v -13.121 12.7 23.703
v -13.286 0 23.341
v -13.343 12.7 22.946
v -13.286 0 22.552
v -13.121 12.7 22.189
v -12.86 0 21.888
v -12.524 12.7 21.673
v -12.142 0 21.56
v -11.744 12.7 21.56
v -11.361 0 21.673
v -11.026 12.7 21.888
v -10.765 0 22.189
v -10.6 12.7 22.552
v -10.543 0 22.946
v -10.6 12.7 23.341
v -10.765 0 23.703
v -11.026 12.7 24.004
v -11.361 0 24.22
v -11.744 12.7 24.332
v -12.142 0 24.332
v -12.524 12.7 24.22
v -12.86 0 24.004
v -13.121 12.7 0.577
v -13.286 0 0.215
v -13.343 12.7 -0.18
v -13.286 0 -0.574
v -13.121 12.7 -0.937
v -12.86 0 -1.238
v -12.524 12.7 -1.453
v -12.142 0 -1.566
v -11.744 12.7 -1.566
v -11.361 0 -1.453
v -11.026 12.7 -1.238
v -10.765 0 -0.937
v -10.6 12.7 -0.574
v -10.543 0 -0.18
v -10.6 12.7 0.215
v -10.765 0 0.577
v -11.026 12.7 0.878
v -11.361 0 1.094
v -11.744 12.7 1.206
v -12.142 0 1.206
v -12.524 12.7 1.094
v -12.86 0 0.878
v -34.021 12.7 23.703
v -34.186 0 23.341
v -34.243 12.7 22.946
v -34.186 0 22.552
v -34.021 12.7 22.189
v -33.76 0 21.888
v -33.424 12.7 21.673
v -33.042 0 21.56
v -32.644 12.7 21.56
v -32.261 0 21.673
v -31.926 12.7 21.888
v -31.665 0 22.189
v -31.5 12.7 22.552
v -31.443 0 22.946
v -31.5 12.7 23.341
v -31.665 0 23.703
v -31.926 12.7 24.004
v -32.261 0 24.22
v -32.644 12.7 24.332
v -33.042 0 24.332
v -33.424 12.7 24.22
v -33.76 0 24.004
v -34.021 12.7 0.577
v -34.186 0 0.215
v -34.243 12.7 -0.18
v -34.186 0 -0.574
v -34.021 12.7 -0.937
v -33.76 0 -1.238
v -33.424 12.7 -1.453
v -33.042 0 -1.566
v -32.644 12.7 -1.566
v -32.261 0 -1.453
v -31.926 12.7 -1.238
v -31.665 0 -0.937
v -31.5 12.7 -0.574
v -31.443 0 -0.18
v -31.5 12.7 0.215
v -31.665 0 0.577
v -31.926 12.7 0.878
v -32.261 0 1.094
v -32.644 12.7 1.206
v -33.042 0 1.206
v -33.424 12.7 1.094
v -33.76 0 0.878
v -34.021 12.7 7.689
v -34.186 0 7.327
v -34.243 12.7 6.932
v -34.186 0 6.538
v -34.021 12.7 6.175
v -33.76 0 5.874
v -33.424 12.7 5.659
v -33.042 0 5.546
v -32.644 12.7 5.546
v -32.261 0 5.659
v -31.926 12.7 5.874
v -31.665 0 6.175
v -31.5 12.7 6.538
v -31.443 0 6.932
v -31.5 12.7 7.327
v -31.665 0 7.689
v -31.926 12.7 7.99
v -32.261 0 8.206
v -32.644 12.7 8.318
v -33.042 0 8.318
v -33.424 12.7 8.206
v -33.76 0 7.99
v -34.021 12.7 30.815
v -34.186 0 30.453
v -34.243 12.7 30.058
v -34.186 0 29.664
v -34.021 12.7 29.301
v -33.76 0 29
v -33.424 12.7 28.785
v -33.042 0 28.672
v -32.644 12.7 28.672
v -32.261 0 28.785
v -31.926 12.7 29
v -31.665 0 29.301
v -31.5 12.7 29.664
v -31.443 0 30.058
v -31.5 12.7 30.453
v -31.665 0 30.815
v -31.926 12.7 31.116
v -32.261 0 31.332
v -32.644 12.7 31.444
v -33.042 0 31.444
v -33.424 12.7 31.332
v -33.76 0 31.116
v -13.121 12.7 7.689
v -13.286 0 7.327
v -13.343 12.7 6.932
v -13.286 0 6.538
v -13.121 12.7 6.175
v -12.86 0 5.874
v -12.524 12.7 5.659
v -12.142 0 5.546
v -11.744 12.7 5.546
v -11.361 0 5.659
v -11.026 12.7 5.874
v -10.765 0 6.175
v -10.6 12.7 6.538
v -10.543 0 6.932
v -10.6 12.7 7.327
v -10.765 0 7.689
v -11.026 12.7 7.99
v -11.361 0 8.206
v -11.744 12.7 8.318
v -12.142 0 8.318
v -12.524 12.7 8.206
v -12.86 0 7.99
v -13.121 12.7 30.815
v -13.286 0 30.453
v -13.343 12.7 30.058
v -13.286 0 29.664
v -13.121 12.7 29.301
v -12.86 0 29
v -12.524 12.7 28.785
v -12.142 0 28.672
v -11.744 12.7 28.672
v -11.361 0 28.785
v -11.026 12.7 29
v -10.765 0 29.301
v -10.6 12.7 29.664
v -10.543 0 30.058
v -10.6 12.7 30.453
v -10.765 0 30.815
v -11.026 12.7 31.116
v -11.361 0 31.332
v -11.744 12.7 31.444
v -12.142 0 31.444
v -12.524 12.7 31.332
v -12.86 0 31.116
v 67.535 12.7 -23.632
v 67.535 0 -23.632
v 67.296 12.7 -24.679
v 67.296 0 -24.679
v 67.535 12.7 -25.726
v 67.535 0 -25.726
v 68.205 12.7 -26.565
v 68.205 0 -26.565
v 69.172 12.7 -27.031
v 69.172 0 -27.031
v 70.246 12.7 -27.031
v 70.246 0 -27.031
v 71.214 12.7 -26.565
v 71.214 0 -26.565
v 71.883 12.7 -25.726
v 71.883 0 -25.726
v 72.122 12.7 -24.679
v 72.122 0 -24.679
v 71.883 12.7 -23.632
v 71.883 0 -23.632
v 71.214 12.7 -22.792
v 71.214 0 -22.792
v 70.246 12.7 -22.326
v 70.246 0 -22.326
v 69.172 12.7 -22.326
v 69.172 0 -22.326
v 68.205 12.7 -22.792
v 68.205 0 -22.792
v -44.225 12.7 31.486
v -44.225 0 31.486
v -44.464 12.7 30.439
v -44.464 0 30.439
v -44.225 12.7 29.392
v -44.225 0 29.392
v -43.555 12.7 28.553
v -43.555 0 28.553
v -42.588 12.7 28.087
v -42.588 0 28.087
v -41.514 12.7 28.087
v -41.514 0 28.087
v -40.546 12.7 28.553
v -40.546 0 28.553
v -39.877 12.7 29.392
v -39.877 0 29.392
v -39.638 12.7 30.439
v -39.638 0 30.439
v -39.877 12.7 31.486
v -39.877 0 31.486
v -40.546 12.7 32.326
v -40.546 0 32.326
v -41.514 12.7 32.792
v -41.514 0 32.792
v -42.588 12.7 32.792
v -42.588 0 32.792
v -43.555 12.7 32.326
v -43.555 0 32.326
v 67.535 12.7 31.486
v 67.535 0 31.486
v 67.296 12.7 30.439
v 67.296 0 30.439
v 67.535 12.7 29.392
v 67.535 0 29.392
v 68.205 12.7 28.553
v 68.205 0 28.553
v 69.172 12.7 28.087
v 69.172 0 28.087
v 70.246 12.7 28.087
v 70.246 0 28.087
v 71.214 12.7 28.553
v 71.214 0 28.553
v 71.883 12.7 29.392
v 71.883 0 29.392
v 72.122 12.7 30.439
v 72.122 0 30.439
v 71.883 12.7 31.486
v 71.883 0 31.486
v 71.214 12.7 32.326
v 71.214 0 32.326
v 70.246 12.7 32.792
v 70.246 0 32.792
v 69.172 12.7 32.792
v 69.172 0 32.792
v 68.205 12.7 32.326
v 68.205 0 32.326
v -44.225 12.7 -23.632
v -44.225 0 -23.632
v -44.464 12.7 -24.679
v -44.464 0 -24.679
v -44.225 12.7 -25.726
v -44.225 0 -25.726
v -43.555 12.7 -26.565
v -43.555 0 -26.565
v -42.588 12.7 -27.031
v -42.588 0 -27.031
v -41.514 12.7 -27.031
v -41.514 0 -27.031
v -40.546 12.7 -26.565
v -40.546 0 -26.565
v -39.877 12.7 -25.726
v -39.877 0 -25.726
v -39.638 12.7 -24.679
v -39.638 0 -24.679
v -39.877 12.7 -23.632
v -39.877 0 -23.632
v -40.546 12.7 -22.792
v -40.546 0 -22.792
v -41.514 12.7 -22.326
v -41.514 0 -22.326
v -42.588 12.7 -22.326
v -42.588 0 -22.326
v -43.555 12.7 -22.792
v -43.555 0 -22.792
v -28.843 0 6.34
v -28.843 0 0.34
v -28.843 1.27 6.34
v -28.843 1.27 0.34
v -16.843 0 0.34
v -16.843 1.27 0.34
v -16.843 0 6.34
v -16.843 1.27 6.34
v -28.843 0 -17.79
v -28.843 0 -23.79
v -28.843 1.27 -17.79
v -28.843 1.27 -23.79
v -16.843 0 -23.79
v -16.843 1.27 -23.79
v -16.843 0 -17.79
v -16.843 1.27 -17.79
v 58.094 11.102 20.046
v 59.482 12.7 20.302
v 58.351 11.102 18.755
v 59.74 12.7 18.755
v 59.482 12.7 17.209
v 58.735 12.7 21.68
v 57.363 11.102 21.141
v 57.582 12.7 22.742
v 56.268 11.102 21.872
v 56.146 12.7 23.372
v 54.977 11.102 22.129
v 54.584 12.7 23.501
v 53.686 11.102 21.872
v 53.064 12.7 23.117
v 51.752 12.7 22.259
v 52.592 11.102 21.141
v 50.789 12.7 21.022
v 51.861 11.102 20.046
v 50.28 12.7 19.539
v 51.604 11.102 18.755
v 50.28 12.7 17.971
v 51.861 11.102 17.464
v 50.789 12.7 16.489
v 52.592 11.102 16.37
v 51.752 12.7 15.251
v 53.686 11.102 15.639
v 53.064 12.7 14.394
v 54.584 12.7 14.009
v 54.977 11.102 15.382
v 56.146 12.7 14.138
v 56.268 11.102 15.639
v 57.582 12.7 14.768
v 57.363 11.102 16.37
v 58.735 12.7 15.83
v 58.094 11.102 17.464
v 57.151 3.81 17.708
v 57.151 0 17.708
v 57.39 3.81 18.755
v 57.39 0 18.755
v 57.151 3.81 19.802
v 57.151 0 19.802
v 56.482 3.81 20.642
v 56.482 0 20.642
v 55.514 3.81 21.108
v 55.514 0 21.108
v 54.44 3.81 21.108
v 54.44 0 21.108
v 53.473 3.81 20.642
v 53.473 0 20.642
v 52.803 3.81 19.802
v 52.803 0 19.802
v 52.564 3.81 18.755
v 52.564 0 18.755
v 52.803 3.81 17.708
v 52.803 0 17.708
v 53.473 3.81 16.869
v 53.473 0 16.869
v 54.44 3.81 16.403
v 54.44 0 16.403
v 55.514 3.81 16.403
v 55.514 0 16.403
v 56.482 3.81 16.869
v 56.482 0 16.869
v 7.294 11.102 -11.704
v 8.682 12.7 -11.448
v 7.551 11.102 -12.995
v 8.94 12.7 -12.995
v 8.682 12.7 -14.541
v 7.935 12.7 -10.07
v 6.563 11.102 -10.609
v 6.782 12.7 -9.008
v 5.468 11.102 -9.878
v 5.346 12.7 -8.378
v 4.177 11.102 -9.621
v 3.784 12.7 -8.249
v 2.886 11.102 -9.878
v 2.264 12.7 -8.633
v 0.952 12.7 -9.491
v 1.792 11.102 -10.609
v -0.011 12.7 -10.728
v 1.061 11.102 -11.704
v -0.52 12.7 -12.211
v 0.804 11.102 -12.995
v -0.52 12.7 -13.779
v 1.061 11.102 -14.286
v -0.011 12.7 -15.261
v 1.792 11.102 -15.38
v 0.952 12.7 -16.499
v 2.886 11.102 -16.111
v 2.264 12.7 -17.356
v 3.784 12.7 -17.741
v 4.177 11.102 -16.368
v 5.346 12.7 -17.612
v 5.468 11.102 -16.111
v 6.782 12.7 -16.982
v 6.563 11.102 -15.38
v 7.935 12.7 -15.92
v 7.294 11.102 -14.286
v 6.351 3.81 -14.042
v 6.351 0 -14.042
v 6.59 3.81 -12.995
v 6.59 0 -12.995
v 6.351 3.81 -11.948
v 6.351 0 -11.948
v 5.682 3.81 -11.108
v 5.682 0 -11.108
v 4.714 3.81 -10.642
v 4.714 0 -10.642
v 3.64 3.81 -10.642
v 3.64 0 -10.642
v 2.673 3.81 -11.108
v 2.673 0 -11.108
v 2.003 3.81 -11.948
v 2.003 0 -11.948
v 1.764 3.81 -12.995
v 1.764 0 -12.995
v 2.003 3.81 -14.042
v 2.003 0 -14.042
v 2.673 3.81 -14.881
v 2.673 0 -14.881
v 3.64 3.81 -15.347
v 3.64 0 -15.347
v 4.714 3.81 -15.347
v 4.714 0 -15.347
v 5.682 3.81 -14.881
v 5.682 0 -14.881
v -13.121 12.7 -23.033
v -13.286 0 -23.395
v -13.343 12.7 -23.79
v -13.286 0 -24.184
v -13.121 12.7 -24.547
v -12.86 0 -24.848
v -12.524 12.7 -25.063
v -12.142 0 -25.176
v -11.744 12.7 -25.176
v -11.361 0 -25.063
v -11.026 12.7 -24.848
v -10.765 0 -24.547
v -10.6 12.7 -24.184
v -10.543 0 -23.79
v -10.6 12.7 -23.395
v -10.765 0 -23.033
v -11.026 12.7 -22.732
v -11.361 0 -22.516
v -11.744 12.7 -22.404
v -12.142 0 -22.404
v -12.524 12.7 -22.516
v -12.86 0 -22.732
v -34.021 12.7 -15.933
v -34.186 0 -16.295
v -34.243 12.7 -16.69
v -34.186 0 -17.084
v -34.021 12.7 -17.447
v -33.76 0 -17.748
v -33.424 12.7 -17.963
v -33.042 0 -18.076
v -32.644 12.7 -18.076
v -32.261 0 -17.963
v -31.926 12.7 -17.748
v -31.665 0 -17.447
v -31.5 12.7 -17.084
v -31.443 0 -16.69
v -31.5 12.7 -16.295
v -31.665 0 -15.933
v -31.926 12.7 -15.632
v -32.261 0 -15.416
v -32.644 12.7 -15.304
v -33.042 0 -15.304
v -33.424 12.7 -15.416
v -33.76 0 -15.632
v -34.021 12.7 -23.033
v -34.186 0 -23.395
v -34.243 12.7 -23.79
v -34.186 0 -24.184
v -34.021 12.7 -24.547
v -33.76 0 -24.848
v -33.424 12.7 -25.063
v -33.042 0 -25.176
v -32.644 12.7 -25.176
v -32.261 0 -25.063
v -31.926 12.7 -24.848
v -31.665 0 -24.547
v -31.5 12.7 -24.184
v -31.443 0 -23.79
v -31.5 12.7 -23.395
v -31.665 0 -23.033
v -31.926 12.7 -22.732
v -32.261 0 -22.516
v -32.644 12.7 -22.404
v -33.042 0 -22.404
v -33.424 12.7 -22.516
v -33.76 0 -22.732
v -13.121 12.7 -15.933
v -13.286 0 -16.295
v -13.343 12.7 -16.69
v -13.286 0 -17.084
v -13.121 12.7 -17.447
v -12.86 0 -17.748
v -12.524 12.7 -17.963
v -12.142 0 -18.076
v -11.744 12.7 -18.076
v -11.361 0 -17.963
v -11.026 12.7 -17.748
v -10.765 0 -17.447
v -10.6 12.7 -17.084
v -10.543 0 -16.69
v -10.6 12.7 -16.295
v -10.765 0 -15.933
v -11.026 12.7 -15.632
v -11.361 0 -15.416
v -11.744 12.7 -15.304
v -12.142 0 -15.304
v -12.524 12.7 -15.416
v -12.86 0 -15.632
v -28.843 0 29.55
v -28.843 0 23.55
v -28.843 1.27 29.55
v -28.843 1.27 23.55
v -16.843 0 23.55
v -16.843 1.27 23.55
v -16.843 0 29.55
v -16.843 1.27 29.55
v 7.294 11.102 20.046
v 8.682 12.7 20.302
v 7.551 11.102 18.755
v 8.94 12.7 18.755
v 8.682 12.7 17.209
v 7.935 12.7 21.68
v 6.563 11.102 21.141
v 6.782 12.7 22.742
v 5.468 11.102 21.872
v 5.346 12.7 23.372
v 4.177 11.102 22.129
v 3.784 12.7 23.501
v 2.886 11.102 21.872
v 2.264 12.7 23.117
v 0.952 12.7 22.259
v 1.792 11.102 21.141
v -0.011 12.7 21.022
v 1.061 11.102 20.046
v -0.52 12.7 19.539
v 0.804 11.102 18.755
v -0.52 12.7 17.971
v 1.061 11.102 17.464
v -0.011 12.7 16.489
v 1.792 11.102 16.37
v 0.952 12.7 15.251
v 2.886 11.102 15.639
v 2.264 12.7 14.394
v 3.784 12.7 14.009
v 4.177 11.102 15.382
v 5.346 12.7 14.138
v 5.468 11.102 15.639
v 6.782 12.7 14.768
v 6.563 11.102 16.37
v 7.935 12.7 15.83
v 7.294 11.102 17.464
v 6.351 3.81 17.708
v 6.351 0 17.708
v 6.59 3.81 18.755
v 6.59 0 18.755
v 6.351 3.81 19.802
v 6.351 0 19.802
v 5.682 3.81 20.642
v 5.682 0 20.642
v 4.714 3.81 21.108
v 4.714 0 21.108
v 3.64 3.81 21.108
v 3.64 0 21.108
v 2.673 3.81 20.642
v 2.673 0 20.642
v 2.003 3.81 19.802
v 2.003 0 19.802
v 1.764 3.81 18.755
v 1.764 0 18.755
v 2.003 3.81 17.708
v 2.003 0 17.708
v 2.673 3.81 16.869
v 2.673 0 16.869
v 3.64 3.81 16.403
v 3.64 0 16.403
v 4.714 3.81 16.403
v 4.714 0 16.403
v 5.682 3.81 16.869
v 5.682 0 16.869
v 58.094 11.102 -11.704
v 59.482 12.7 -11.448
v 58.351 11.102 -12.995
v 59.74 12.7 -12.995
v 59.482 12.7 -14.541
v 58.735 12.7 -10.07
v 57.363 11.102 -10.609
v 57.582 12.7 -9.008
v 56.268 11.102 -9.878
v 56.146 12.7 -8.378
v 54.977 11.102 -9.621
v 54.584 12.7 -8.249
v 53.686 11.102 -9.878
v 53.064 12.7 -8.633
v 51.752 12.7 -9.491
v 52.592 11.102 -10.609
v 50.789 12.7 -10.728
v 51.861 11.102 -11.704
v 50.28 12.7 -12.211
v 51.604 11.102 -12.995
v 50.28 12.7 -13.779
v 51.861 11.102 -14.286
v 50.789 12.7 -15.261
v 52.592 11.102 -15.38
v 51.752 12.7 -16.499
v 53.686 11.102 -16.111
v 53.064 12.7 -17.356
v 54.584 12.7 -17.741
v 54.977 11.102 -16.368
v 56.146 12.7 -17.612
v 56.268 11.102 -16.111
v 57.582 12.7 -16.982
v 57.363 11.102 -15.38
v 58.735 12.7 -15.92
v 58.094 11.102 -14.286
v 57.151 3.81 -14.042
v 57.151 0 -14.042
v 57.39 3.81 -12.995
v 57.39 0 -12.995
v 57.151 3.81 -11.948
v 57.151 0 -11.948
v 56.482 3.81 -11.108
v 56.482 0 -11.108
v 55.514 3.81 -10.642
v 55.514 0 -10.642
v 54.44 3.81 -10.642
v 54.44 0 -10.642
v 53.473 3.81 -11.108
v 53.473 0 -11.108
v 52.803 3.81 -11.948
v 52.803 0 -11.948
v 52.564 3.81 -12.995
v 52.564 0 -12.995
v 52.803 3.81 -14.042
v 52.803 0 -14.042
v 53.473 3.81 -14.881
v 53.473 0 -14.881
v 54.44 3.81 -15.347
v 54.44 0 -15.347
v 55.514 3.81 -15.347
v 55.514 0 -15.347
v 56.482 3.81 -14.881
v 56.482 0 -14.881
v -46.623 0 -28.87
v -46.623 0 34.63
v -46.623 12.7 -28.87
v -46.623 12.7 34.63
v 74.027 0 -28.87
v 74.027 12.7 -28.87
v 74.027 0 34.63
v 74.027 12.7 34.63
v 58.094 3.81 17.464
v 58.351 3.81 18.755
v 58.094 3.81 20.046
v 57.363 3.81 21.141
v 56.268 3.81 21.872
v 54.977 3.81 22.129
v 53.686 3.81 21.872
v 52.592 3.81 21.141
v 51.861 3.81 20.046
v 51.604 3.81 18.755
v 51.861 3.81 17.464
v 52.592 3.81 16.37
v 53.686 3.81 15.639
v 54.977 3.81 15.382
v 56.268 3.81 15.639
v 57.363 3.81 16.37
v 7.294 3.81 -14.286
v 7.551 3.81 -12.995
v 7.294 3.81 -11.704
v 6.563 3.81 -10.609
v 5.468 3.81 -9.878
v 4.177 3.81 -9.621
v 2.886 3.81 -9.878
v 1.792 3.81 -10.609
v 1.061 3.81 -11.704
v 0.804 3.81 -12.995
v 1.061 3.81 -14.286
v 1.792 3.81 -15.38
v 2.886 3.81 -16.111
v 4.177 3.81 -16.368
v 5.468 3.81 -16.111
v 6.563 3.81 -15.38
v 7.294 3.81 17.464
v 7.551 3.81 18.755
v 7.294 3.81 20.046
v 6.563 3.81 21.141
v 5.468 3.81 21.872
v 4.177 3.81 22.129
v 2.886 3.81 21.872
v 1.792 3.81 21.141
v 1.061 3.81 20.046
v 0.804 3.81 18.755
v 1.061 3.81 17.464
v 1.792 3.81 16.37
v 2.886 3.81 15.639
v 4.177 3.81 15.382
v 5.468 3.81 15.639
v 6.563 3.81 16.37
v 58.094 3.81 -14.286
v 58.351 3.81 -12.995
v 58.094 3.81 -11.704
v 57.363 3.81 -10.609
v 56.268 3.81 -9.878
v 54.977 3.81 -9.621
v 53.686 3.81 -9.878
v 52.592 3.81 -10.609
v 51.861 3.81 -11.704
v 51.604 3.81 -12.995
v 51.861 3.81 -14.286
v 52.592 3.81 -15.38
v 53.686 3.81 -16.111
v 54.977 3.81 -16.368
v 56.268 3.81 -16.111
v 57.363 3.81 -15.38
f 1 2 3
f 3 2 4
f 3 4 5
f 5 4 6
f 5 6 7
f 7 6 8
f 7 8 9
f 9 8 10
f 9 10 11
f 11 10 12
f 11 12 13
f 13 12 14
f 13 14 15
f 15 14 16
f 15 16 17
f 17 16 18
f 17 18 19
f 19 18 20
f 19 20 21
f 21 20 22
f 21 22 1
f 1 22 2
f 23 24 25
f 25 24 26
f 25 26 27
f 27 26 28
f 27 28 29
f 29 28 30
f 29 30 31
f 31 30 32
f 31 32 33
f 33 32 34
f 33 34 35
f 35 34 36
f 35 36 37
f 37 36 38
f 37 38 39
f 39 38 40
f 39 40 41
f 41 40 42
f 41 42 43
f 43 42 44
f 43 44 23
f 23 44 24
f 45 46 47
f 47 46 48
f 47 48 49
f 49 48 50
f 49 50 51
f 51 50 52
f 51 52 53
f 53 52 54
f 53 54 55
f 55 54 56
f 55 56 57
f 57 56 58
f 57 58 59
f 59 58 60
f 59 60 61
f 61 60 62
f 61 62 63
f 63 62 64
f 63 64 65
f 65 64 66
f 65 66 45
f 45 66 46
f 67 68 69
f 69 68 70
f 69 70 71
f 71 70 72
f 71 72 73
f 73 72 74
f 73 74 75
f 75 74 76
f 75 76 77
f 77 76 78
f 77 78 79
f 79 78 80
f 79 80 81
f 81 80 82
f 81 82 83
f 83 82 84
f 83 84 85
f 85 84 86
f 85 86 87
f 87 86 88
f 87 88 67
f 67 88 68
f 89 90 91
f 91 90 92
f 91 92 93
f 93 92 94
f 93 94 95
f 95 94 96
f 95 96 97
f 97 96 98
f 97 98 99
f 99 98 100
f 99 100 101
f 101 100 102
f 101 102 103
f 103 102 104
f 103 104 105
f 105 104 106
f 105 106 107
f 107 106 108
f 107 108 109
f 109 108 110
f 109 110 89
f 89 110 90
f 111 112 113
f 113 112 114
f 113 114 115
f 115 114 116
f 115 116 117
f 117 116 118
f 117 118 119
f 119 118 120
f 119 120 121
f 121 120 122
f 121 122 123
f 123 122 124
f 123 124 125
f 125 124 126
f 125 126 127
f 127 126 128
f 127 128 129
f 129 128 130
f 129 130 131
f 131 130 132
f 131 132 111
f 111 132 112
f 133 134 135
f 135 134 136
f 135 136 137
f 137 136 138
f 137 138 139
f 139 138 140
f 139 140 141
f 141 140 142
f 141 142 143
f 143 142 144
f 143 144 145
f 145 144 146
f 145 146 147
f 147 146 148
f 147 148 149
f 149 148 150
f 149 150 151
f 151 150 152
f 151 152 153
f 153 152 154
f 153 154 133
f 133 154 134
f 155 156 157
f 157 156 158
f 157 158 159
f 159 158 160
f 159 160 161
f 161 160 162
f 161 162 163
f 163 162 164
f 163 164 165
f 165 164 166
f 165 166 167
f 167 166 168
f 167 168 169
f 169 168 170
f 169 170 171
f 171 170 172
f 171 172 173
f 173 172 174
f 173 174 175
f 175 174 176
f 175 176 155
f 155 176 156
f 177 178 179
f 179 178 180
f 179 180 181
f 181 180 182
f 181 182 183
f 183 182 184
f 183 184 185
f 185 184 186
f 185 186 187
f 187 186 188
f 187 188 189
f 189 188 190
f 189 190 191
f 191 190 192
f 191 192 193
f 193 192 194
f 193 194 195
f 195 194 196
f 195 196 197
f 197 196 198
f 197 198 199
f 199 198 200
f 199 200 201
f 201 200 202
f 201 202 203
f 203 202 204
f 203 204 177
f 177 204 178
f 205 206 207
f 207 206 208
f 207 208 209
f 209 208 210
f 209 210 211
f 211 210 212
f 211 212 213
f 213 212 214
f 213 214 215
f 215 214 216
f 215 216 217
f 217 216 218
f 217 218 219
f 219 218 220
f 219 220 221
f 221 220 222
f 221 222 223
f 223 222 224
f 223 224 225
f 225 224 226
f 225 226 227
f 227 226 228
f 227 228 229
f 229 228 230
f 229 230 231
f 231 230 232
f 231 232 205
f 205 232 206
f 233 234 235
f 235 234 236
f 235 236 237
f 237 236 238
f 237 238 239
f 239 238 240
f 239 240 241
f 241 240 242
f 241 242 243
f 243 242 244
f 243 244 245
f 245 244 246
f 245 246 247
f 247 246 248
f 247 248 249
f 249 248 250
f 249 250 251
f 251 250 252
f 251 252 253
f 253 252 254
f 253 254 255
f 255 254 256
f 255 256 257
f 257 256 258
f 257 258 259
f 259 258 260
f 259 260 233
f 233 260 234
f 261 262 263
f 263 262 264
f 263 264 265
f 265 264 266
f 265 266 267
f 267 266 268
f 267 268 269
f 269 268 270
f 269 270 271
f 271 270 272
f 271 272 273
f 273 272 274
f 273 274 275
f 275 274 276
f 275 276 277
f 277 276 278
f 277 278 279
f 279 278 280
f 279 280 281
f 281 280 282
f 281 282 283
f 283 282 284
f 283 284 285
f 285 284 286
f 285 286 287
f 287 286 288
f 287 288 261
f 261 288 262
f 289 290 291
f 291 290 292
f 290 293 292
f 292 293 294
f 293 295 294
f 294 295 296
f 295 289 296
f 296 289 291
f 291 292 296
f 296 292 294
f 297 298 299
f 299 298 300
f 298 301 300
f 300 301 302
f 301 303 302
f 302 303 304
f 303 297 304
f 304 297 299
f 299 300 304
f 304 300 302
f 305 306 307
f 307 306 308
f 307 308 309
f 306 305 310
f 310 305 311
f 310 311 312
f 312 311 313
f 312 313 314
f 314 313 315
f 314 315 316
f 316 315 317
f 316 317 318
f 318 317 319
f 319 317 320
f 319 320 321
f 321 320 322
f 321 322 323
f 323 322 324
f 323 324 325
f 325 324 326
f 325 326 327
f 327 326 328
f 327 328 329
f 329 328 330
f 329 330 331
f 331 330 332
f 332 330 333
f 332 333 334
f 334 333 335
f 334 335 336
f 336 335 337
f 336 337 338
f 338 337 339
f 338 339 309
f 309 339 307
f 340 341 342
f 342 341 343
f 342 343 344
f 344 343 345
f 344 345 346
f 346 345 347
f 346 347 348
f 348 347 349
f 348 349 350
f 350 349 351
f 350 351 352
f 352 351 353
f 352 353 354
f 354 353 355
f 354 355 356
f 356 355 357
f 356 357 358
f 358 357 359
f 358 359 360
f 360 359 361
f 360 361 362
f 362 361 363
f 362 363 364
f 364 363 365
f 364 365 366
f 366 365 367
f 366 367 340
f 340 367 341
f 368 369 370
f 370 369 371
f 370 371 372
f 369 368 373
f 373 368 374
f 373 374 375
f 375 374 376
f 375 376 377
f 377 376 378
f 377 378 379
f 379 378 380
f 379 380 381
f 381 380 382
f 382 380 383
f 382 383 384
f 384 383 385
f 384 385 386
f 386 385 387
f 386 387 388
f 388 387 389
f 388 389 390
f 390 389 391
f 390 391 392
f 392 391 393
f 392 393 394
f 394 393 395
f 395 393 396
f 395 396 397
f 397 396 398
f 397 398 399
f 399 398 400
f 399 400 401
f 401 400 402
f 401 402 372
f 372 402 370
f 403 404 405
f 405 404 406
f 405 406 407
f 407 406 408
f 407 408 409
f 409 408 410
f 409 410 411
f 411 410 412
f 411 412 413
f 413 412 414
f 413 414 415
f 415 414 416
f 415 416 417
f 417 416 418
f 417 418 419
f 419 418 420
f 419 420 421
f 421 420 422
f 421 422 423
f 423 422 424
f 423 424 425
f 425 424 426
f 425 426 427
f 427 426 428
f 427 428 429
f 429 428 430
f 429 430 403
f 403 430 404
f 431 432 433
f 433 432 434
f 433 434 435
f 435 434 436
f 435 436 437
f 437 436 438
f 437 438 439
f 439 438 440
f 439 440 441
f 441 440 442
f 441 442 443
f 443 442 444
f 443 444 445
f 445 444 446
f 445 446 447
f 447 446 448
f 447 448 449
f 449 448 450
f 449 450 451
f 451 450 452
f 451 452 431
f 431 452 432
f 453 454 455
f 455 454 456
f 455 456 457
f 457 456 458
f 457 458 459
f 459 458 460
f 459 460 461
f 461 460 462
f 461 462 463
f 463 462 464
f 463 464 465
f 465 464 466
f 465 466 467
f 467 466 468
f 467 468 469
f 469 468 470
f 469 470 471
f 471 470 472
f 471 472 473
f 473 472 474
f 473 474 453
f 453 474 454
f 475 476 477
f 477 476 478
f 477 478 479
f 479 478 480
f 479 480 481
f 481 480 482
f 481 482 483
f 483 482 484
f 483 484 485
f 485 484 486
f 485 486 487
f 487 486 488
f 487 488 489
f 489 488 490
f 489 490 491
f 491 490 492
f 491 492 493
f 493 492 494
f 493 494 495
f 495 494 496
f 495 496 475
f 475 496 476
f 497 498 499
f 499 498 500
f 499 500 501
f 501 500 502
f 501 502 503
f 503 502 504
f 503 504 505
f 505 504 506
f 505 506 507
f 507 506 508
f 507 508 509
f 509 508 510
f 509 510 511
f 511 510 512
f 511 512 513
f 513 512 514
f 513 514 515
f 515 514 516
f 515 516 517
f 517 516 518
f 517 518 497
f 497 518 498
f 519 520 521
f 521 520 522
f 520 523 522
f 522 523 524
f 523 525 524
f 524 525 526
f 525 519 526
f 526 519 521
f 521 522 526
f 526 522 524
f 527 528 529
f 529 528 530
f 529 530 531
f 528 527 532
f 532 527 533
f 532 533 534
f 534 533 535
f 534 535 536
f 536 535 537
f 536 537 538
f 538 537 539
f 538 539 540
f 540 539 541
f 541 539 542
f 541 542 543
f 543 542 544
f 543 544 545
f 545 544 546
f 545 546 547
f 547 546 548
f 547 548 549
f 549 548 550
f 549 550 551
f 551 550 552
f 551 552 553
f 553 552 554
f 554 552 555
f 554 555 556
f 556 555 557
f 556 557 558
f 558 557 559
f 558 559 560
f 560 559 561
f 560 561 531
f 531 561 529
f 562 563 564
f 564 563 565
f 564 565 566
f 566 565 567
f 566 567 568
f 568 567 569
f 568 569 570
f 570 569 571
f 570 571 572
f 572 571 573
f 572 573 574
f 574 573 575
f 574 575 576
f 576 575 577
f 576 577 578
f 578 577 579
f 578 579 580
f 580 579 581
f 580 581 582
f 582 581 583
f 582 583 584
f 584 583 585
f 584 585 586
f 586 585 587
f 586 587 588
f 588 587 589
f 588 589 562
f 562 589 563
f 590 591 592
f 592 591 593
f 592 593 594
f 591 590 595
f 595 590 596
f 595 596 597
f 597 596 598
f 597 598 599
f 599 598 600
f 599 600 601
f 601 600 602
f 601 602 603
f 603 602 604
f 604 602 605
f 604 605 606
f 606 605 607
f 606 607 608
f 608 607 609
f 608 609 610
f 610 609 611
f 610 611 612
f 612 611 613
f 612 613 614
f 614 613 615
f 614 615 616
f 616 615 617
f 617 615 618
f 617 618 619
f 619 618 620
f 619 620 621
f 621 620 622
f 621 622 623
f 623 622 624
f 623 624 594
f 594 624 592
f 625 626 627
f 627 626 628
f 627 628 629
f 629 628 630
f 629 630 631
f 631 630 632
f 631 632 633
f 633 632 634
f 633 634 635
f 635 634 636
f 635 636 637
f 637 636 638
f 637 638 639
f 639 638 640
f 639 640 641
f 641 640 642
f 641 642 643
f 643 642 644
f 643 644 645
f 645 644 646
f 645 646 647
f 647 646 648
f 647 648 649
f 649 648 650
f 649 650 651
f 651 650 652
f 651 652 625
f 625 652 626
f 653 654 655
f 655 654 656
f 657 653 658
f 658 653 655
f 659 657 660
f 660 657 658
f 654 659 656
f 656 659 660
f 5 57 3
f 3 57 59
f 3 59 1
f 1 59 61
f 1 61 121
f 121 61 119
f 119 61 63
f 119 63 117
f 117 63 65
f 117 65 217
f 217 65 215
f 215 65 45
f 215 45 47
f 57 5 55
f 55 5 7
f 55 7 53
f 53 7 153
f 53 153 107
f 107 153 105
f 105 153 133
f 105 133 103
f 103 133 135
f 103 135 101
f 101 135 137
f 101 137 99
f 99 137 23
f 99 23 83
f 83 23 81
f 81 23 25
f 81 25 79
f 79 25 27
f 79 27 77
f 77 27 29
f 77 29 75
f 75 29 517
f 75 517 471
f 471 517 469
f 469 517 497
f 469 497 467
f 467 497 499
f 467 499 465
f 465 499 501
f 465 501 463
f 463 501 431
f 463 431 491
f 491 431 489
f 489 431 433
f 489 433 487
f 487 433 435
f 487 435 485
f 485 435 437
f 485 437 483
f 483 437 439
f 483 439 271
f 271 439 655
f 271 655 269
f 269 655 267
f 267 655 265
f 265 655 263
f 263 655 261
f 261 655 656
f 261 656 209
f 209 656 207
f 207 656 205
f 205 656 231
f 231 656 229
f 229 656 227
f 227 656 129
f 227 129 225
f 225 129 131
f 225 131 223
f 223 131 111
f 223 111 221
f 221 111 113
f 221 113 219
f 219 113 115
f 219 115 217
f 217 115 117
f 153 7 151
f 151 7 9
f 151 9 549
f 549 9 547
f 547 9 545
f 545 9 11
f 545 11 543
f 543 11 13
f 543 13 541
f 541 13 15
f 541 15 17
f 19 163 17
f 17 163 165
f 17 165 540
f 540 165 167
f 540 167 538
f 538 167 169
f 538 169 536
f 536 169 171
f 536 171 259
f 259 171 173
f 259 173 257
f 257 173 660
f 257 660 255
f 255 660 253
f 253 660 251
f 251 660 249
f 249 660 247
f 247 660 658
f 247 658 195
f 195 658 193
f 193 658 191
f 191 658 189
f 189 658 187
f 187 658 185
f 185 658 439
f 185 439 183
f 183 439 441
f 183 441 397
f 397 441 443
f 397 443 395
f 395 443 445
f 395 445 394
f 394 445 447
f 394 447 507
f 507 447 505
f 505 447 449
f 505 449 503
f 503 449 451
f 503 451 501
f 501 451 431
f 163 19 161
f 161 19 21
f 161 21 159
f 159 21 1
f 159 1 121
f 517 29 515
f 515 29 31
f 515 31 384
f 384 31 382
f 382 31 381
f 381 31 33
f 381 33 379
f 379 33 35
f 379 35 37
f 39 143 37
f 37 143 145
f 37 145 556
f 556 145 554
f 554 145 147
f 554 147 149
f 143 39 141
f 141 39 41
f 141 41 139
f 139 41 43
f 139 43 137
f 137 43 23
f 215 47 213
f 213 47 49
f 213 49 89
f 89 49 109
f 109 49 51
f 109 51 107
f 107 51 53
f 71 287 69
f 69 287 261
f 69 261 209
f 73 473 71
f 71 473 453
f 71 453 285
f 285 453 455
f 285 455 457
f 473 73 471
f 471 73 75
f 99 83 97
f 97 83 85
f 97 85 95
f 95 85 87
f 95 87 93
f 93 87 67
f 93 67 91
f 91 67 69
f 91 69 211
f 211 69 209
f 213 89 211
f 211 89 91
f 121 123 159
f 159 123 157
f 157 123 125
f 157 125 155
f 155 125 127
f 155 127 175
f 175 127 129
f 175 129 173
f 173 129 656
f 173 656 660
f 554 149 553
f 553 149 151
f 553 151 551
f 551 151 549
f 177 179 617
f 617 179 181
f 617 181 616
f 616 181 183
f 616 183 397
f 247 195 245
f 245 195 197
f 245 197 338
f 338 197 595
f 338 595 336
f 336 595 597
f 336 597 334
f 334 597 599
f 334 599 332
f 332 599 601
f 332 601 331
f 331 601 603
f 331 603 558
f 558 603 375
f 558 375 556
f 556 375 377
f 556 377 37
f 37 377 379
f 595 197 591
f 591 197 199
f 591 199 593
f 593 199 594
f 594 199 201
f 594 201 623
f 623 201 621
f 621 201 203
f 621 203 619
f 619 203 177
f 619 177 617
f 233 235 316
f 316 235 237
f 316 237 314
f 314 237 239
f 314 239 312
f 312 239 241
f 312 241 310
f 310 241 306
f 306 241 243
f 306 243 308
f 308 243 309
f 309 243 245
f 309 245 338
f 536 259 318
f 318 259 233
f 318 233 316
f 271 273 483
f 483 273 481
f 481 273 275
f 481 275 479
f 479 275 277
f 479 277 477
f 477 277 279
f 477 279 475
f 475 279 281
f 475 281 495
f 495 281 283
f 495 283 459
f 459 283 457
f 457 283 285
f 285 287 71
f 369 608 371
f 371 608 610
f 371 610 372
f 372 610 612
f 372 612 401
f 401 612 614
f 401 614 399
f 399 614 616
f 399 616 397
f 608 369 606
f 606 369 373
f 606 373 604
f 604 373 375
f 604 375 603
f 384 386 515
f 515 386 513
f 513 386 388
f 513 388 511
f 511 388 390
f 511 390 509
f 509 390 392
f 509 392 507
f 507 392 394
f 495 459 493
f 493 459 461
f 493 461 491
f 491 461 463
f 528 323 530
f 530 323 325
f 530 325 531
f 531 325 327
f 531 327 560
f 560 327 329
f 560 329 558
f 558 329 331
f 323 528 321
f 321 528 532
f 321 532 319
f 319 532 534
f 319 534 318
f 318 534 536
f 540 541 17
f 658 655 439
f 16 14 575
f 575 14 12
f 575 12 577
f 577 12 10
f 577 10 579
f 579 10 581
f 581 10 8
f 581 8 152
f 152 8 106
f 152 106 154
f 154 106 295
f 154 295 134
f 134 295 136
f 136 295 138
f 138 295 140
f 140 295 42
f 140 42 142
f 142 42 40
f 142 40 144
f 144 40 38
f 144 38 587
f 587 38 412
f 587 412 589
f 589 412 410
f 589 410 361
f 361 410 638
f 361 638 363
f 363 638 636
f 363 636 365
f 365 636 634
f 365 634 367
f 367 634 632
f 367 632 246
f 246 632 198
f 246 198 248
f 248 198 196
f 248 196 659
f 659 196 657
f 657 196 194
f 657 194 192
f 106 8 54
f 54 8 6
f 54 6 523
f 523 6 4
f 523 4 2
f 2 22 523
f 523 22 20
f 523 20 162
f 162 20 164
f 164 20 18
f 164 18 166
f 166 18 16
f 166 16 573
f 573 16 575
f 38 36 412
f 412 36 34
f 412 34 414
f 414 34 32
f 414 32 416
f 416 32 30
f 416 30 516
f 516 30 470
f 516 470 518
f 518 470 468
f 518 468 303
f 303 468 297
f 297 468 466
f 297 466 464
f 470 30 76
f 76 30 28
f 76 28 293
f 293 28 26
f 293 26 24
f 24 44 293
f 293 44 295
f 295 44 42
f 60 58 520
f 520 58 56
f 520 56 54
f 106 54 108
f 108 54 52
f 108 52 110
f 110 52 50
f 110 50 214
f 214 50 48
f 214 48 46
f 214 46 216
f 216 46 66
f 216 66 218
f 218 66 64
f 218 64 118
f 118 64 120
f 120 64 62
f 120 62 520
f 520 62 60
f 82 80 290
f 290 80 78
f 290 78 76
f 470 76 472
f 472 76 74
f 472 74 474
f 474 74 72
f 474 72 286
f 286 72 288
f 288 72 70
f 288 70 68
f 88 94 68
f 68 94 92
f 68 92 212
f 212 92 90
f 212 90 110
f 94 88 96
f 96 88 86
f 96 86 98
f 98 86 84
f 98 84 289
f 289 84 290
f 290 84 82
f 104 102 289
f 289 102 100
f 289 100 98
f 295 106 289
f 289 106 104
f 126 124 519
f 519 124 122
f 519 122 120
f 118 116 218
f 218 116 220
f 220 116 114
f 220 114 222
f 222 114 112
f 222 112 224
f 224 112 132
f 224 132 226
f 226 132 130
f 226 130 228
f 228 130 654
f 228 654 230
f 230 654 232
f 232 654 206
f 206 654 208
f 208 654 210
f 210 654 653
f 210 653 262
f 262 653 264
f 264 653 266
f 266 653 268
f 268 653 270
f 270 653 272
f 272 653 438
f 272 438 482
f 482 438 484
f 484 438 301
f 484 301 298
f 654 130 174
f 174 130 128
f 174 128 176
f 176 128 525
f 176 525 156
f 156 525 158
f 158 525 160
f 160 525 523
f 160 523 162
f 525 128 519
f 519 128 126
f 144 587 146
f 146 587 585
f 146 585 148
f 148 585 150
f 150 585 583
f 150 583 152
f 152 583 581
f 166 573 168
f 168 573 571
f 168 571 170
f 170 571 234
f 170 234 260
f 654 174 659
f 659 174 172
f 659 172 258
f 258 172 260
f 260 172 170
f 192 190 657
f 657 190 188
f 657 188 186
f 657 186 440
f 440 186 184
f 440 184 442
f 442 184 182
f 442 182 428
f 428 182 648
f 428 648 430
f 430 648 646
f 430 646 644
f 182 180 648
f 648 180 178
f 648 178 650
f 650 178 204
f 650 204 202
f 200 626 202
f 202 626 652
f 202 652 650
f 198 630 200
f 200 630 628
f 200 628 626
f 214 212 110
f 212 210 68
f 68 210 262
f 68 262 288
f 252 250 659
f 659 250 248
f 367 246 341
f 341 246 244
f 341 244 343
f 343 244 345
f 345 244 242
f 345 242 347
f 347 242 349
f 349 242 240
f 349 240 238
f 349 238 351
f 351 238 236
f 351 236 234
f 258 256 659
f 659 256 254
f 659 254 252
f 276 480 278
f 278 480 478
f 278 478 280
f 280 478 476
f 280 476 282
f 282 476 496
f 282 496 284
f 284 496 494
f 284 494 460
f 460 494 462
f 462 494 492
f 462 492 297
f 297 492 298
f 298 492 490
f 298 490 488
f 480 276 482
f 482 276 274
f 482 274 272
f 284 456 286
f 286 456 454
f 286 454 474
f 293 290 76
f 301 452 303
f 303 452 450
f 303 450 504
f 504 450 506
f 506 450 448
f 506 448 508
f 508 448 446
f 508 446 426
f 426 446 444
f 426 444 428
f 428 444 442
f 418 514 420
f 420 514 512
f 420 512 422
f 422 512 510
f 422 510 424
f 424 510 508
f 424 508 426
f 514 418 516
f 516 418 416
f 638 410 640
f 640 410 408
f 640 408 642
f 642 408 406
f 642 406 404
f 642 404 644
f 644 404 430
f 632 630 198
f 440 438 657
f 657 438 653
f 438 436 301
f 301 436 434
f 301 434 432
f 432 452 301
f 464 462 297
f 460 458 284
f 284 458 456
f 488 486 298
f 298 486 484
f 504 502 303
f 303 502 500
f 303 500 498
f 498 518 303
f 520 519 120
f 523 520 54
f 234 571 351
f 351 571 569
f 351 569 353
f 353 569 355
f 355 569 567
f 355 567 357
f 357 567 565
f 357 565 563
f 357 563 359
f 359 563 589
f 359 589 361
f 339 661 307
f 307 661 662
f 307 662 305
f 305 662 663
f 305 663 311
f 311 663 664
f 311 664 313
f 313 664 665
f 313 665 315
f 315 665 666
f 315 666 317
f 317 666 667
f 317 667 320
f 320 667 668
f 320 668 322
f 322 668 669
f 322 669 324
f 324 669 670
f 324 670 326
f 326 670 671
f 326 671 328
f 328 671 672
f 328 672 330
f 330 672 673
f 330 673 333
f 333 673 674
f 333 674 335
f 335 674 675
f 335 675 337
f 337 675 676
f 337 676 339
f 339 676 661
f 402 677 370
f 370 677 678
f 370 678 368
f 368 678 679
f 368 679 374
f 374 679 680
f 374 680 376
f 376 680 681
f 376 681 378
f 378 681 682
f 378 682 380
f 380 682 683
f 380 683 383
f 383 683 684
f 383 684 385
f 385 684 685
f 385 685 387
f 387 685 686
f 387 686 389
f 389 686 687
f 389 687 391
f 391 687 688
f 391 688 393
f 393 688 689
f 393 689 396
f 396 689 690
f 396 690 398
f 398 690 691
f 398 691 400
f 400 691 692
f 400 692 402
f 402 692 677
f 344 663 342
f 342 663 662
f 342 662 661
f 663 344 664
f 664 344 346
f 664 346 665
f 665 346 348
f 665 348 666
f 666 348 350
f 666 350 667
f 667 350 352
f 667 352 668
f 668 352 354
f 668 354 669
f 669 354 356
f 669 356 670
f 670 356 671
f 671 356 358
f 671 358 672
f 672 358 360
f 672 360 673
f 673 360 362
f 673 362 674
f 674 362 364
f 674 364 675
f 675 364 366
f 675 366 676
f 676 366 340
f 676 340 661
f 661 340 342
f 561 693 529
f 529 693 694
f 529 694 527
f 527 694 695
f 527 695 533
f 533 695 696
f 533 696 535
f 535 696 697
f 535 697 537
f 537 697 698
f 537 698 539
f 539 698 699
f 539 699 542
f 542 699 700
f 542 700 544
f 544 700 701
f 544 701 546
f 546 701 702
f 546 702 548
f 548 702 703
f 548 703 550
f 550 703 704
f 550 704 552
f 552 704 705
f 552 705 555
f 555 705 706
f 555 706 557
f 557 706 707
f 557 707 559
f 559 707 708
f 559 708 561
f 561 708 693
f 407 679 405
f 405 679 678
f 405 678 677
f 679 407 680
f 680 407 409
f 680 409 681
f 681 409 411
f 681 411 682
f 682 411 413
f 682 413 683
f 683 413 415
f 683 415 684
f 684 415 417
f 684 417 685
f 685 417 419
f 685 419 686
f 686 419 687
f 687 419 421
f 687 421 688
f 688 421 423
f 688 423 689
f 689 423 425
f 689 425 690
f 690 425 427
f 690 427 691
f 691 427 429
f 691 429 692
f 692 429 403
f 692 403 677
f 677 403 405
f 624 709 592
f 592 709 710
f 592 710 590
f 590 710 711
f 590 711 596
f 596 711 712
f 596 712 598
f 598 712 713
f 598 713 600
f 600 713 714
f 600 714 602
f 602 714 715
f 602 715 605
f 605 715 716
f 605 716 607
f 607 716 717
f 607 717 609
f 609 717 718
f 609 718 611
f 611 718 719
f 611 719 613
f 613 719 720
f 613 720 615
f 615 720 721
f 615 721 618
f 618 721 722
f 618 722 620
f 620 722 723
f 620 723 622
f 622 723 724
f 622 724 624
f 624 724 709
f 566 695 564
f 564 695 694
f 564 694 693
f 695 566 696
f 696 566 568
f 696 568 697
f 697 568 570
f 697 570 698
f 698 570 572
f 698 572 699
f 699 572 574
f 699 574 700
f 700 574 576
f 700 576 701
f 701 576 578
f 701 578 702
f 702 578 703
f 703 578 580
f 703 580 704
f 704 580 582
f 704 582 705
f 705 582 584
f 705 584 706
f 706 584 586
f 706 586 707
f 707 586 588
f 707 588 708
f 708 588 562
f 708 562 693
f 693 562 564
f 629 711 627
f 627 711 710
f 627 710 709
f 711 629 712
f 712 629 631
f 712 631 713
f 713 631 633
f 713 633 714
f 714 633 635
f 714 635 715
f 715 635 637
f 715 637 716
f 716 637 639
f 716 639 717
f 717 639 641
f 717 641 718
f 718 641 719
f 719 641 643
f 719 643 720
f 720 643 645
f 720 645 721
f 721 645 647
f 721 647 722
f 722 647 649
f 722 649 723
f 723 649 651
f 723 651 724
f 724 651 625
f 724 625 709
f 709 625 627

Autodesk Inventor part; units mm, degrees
ref_plane "YZ Plane" through (0, 0, 0) normal (1, 0, 0) x (0, 1, 0)
ref_plane "XZ Plane" through (0, 0, 0) normal (0, 1, 0) x (-1, 0, 0)
ref_plane "XY Plane" through (0, 0, 0) normal (0, 0, 1) x (1, 0, 0)
sketch "Sketch1" plane through (0, 0, 0) normal (0, 1, 0) x (-1, 0, 0)
  line L0 (46.6228, 34.6302) -> (-74.0272, 34.6302)
  line L1 (-74.0272, 34.6302) -> (-74.0272, -28.8698)
  line L2 (-74.0272, -28.8698) -> (46.6228, -28.8698)
  line L3 (46.6228, -28.8698) -> (46.6228, 34.6302)
  point P0 (0, 0)
  dimension "d0" = 120.65
  dimension "d1" = 63.5
extrude "Extrusion1" add sketch "Sketch1" along normal blind 12.7
sketch "Sketch2" plane through (0, 12.7, 0) normal (0, 1, 0) x (1, 0, 0)
  line L0 (-46.6228, -34.6302) -> (74.0272, -34.6302) projected
  line L1 (-46.6228, 28.8698) -> (-46.6228, -34.6302) projected
  point P0 (0, 0)
  point P1 (4.1772, -18.7552)
  point P2 (54.9772, -18.7552)
  dimension "d4" = 0
  dimension "d5" = 15.875
  dimension "d6" = 50.8
  dimension "d7" = 50.8
hole "Hole1" at (4.1772, 12.7, 18.7552) at (54.9772, 12.7, 18.7552) direction (0, -1, 0) diameter 4.826 depth 25.4 tip angle 118 countersink diameter 9.525 countersink angle 82
sketch "Sketch3" plane through (0, 0, 0) normal (0, -1, 0) x (1, 0, 0)
  line L0 (-16.8428, 29.5502) -> (-28.8428, 29.5502)
  line L1 (-28.8428, 29.5502) -> (-28.8428, 23.5502)
  line L2 (-28.8428, 23.5502) -> (-16.8428, 23.5502)
  line L3 (-16.8428, 23.5502) -> (-16.8428, 29.5502)
  line L4 (-46.6228, 34.6302) -> (74.0272, 34.6302) projected
  line L5 (-46.6228, -28.8698) -> (-46.6228, 34.6302) projected
  point P0 (0, 0)
  dimension "d15" = 6
  dimension "d16" = 12
  dimension "d17" = 5.08
  dimension "d18" = 17.78
extrude "Extrusion2" cut sketch "Sketch3" against normal blind 1.27
sketch "Sketch4" plane through (0, 0, 0) normal (0, -1, 0) x (1, 0, 0)
  line L0 (74.0272, -28.8698) -> (-46.6228, -28.8698) projected
  line L1 (-28.8428, 23.5502) -> (-28.8428, 29.5502) projected
  line L2 (-46.6228, -28.8698) -> (-46.6228, 34.6302) projected
  point P0 (0, 0)
  point P1 (-32.8428, -16.6898)
  point P2 (-32.8428, -23.7898)
  point P3 (-11.9428, -23.7898)
  point P4 (-11.9428, -16.6898)
  dimension "d21" = 0
  dimension "d22" = 0
  dimension "d23" = 0
  dimension "d24" = 0
  dimension "d25" = 5.08
  dimension "d26" = 7.1
  dimension "d27" = 20.9
  dimension "d35" = 4
  dimension "d92" = 13.78
hole "Hole2" at (-32.8428, 0, -16.6898) at (-32.8428, 0, -23.7898) at (-11.9428, 0, -23.7898) at (-11.9428, 0, -16.6898) direction (0, 1, 0) diameter 2.8 depth 25.4 tip angle 118
sketch "Sketch6" plane through (0, 0, 0) normal (0, -1, 0) x (1, 0, 0)
  line L0 (-46.6228, 34.6302) -> (74.0272, 34.6302) projected
  line L1 (-46.6228, -28.8698) -> (-46.6228, 34.6302) projected
  line L2 (74.0272, -28.8698) -> (-46.6228, -28.8698) projected
  point P0 (0, 0)
  point P1 (69.7092, -24.6788)
  point P2 (-42.0508, -24.6788)
  point P3 (-42.0508, 30.4392)
  point P4 (69.7092, 30.4392)
  dimension "d43" = 0
  dimension "d44" = 0
  dimension "d46" = 111.76
  dimension "d47" = 0
  dimension "d48" = 0
  dimension "d50" = 4.191
  dimension "d51" = 4.572
  dimension "d91" = 4.191
hole "Hole4" at (69.7092, 0, -24.6788) at (-42.0508, 0, -24.6788) at (-42.0508, 0, 30.4392) at (69.7092, 0, 30.4392) direction (0, 1, 0) diameter 4.8 depth 25.4 tip angle 118
sketch "Sketch10" plane through (0, 12.7, 0) normal (0, 1, 0) x (1, 0, 0)
  circle A0 centre (54.9772, -18.7552) radius 2.413 projected
  circle A1 centre (4.1772, -18.7552) radius 2.413 projected
  line L0 (74.0272, 28.8698) -> (-46.6228, 28.8698) projected
  point P0 (0, 0)
  point P1 (4.1772, 12.9948)
  point P2 (54.9772, 12.9948)
  point P3 (66.6772, 28.8698)
  point P4 (-45.6228, 28.8698)
  dimension "d80" = 0
  dimension "d81" = 0
  dimension "d82" = 0
  dimension "d83" = 15.875
hole "Hole7" at (4.1772, 12.7, -12.9948) at (54.9772, 12.7, -12.9948) direction (0, -1, 0) diameter 4.826 end through all countersink diameter 9.525 countersink angle 82
sketch "Sketch11" plane through (0, 0, 0) normal (0, -1, 0) x (1, 0, 0)
  line L0 (-28.8428, 6.3402) -> (-16.8428, 6.3402)
  line L1 (-16.8428, 6.3402) -> (-16.8428, 0.3402)
  line L2 (-16.8428, 0.3402) -> (-28.8428, 0.3402)
  line L3 (-28.8428, 0.3402) -> (-28.8428, 6.3402)
  line L4 (-28.8428, -17.7898) -> (-16.8428, -17.7898)
  line L5 (-16.8428, -17.7898) -> (-16.8428, -23.7898)
  line L6 (-16.8428, -23.7898) -> (-28.8428, -23.7898)
  line L7 (-28.8428, -23.7898) -> (-28.8428, -17.7898)
  line L8 (-28.8428, 23.5502) -> (-28.8428, 29.5502) projected
  line L9 (-16.8428, 29.5502) -> (-16.8428, 23.5502) projected
  line L10 (74.0272, -28.8698) -> (-46.6228, -28.8698) projected
  point P0 (0, 0)
  dimension "d93" = 0
  dimension "d94" = 0
  dimension "d95" = 0
  dimension "d96" = 0
  dimension "d97" = 6
  dimension "d98" = 6
  dimension "d99" = 5.08
  dimension "d100" = 29.21
extrude "Extrusion4" cut sketch "Sketch11" against normal blind 1.27
sketch "Sketch12" plane through (0, 0, 0) normal (0, -1, 0) x (1, 0, 0)
  circle A0 centre (-42.0508, 30.4392) radius 2.4 projected
  circle A1 centre (69.7092, 30.4392) radius 2.4 projected
  circle A2 centre (69.7092, -24.6788) radius 2.4 projected
  circle A3 centre (-42.0508, -24.6788) radius 2.4 projected
  point P0 (0, 0)
hole "Hole8" at (-42.0508, 0, 30.4392) at (69.7092, 0, 30.4392) at (69.7092, 0, -24.6788) at (-42.0508, 0, -24.6788) direction (0, 1, 0) diameter 4.826 end through all
sketch "Sketch13" plane through (0, 0, 0) normal (0, -1, 0) x (1, 0, 0)
  circle A0 centre (-32.8428, -16.6898) radius 1.4 projected
  circle A1 centre (-32.8428, -23.7898) radius 1.4 projected
  line L0 (-46.6228, 34.6302) -> (74.0272, 34.6302) projected
  circle A2 centre (-11.9428, -16.6898) radius 1.4 projected
  point P0 (0, 0)
  point P1 (-32.8428, -0.1798)
  point P2 (-32.8428, 6.9322)
  point P3 (-32.8428, 22.9462)
  point P4 (-32.8428, 30.0582)
  point P5 (-39.7887, 34.6302)
  point P6 (67.4471, 34.6302)
  point P7 (-11.9428, -0.1798)
  point P8 (-11.9428, 6.9322)
  point P9 (-11.9428, 22.9462)
  point P10 (-11.9428, 30.0582)
  dimension "d110" = 0
  dimension "d111" = 0
  dimension "d112" = 0
  dimension "d113" = 7.112
  dimension "d114" = 7.112
  dimension "d115" = 16.51
  dimension "d116" = 4.572
  dimension "d117" = 0
  dimension "d118" = 0
  dimension "d119" = 0
  dimension "d120" = 0
  dimension "d121" = 0
  dimension "d122" = 0
  dimension "d123" = 0
  dimension "d124" = 0
hole "Hole9" at (-32.8428, 0, -0.1798) at (-32.8428, 0, 6.9322) at (-32.8428, 0, 22.9462) at (-32.8428, 0, 30.0582) at (-11.9428, 0, -0.1798) at (-11.9428, 0, 6.9322) at (-11.9428, 0, 22.9462) at (-11.9428, 0, 30.0582) direction (0, 1, 0) diameter 2.8 end through all
sketch "Sketch15" plane through (0, 12.7, 0) normal (0, 1, 0) x (1, 0, 0)
  circle A0 centre (4.1772, 12.9948) radius 2.413 projected
  circle A1 centre (54.9772, 12.9948) radius 2.413 projected
  circle A2 centre (4.1772, -18.7552) radius 2.413 projected
  circle A3 centre (54.9772, -18.7552) radius 2.413 projected
  circle A4 centre (4.1772, 12.9948) radius 3.3734
  circle A5 centre (4.1772, -18.7552) radius 3.3734
  circle A6 centre (54.9772, -18.7552) radius 3.3734
  circle A7 centre (54.9772, 12.9948) radius 3.3734
  point P0 (0, 0)
  dimension "d138" = 6.7469
  dimension "d139" = 6.7469
  dimension "d140" = 6.7469
  dimension "d141" = 6.7469
extrude "Extrusion6" cut sketch "Sketch15" against normal blind 8.89
equation "\"d1\" = 2 * TalonSRXWidth"
equation "\"d5\" = TalonSRXFromSide"
equation "\"d7\" = TalonSRXBetweenHoles"
equation "\"d15\" = CanConPinWidth"
equation "\"d16\" = CanConPinLength"
equation "\"d26\" = CanConBetweenTopHoles"
equation "\"d27\" = CanConBetweenSideHoles"
equation "\"d35\" = CanConHoleFromTopPin"
equation "\"d28\" = CanConHoleDiam"
equation "\"d52\" = LegoMainHole"
equation "\"d83\" = TalonSRXFromSide"
equation "\"d125\" = CanConHoleDiam"
equation "\"LegoMainHole\" = 4.8"
equation "\"TalonSRXWidth\" = 31.75"
equation "\"TalonSRXFromSide\" = 15.875"
equation "\"TalonSRXBetweenHoles\" = 50.8"
equation "\"CanConPinWidth\" = 6"
equation "\"CanConPinLength\" = 12"
equation "\"CanConBetweenSideHoles\" = 20.9"
equation "\"CanConBetweenTopHoles\" = 7.1"
equation "\"CanConHoleDiam\" = 2.8"
equation "\"CanConHoleFromTopPin\" = 4"
properties part number "TalonSRXPlateTwo"
